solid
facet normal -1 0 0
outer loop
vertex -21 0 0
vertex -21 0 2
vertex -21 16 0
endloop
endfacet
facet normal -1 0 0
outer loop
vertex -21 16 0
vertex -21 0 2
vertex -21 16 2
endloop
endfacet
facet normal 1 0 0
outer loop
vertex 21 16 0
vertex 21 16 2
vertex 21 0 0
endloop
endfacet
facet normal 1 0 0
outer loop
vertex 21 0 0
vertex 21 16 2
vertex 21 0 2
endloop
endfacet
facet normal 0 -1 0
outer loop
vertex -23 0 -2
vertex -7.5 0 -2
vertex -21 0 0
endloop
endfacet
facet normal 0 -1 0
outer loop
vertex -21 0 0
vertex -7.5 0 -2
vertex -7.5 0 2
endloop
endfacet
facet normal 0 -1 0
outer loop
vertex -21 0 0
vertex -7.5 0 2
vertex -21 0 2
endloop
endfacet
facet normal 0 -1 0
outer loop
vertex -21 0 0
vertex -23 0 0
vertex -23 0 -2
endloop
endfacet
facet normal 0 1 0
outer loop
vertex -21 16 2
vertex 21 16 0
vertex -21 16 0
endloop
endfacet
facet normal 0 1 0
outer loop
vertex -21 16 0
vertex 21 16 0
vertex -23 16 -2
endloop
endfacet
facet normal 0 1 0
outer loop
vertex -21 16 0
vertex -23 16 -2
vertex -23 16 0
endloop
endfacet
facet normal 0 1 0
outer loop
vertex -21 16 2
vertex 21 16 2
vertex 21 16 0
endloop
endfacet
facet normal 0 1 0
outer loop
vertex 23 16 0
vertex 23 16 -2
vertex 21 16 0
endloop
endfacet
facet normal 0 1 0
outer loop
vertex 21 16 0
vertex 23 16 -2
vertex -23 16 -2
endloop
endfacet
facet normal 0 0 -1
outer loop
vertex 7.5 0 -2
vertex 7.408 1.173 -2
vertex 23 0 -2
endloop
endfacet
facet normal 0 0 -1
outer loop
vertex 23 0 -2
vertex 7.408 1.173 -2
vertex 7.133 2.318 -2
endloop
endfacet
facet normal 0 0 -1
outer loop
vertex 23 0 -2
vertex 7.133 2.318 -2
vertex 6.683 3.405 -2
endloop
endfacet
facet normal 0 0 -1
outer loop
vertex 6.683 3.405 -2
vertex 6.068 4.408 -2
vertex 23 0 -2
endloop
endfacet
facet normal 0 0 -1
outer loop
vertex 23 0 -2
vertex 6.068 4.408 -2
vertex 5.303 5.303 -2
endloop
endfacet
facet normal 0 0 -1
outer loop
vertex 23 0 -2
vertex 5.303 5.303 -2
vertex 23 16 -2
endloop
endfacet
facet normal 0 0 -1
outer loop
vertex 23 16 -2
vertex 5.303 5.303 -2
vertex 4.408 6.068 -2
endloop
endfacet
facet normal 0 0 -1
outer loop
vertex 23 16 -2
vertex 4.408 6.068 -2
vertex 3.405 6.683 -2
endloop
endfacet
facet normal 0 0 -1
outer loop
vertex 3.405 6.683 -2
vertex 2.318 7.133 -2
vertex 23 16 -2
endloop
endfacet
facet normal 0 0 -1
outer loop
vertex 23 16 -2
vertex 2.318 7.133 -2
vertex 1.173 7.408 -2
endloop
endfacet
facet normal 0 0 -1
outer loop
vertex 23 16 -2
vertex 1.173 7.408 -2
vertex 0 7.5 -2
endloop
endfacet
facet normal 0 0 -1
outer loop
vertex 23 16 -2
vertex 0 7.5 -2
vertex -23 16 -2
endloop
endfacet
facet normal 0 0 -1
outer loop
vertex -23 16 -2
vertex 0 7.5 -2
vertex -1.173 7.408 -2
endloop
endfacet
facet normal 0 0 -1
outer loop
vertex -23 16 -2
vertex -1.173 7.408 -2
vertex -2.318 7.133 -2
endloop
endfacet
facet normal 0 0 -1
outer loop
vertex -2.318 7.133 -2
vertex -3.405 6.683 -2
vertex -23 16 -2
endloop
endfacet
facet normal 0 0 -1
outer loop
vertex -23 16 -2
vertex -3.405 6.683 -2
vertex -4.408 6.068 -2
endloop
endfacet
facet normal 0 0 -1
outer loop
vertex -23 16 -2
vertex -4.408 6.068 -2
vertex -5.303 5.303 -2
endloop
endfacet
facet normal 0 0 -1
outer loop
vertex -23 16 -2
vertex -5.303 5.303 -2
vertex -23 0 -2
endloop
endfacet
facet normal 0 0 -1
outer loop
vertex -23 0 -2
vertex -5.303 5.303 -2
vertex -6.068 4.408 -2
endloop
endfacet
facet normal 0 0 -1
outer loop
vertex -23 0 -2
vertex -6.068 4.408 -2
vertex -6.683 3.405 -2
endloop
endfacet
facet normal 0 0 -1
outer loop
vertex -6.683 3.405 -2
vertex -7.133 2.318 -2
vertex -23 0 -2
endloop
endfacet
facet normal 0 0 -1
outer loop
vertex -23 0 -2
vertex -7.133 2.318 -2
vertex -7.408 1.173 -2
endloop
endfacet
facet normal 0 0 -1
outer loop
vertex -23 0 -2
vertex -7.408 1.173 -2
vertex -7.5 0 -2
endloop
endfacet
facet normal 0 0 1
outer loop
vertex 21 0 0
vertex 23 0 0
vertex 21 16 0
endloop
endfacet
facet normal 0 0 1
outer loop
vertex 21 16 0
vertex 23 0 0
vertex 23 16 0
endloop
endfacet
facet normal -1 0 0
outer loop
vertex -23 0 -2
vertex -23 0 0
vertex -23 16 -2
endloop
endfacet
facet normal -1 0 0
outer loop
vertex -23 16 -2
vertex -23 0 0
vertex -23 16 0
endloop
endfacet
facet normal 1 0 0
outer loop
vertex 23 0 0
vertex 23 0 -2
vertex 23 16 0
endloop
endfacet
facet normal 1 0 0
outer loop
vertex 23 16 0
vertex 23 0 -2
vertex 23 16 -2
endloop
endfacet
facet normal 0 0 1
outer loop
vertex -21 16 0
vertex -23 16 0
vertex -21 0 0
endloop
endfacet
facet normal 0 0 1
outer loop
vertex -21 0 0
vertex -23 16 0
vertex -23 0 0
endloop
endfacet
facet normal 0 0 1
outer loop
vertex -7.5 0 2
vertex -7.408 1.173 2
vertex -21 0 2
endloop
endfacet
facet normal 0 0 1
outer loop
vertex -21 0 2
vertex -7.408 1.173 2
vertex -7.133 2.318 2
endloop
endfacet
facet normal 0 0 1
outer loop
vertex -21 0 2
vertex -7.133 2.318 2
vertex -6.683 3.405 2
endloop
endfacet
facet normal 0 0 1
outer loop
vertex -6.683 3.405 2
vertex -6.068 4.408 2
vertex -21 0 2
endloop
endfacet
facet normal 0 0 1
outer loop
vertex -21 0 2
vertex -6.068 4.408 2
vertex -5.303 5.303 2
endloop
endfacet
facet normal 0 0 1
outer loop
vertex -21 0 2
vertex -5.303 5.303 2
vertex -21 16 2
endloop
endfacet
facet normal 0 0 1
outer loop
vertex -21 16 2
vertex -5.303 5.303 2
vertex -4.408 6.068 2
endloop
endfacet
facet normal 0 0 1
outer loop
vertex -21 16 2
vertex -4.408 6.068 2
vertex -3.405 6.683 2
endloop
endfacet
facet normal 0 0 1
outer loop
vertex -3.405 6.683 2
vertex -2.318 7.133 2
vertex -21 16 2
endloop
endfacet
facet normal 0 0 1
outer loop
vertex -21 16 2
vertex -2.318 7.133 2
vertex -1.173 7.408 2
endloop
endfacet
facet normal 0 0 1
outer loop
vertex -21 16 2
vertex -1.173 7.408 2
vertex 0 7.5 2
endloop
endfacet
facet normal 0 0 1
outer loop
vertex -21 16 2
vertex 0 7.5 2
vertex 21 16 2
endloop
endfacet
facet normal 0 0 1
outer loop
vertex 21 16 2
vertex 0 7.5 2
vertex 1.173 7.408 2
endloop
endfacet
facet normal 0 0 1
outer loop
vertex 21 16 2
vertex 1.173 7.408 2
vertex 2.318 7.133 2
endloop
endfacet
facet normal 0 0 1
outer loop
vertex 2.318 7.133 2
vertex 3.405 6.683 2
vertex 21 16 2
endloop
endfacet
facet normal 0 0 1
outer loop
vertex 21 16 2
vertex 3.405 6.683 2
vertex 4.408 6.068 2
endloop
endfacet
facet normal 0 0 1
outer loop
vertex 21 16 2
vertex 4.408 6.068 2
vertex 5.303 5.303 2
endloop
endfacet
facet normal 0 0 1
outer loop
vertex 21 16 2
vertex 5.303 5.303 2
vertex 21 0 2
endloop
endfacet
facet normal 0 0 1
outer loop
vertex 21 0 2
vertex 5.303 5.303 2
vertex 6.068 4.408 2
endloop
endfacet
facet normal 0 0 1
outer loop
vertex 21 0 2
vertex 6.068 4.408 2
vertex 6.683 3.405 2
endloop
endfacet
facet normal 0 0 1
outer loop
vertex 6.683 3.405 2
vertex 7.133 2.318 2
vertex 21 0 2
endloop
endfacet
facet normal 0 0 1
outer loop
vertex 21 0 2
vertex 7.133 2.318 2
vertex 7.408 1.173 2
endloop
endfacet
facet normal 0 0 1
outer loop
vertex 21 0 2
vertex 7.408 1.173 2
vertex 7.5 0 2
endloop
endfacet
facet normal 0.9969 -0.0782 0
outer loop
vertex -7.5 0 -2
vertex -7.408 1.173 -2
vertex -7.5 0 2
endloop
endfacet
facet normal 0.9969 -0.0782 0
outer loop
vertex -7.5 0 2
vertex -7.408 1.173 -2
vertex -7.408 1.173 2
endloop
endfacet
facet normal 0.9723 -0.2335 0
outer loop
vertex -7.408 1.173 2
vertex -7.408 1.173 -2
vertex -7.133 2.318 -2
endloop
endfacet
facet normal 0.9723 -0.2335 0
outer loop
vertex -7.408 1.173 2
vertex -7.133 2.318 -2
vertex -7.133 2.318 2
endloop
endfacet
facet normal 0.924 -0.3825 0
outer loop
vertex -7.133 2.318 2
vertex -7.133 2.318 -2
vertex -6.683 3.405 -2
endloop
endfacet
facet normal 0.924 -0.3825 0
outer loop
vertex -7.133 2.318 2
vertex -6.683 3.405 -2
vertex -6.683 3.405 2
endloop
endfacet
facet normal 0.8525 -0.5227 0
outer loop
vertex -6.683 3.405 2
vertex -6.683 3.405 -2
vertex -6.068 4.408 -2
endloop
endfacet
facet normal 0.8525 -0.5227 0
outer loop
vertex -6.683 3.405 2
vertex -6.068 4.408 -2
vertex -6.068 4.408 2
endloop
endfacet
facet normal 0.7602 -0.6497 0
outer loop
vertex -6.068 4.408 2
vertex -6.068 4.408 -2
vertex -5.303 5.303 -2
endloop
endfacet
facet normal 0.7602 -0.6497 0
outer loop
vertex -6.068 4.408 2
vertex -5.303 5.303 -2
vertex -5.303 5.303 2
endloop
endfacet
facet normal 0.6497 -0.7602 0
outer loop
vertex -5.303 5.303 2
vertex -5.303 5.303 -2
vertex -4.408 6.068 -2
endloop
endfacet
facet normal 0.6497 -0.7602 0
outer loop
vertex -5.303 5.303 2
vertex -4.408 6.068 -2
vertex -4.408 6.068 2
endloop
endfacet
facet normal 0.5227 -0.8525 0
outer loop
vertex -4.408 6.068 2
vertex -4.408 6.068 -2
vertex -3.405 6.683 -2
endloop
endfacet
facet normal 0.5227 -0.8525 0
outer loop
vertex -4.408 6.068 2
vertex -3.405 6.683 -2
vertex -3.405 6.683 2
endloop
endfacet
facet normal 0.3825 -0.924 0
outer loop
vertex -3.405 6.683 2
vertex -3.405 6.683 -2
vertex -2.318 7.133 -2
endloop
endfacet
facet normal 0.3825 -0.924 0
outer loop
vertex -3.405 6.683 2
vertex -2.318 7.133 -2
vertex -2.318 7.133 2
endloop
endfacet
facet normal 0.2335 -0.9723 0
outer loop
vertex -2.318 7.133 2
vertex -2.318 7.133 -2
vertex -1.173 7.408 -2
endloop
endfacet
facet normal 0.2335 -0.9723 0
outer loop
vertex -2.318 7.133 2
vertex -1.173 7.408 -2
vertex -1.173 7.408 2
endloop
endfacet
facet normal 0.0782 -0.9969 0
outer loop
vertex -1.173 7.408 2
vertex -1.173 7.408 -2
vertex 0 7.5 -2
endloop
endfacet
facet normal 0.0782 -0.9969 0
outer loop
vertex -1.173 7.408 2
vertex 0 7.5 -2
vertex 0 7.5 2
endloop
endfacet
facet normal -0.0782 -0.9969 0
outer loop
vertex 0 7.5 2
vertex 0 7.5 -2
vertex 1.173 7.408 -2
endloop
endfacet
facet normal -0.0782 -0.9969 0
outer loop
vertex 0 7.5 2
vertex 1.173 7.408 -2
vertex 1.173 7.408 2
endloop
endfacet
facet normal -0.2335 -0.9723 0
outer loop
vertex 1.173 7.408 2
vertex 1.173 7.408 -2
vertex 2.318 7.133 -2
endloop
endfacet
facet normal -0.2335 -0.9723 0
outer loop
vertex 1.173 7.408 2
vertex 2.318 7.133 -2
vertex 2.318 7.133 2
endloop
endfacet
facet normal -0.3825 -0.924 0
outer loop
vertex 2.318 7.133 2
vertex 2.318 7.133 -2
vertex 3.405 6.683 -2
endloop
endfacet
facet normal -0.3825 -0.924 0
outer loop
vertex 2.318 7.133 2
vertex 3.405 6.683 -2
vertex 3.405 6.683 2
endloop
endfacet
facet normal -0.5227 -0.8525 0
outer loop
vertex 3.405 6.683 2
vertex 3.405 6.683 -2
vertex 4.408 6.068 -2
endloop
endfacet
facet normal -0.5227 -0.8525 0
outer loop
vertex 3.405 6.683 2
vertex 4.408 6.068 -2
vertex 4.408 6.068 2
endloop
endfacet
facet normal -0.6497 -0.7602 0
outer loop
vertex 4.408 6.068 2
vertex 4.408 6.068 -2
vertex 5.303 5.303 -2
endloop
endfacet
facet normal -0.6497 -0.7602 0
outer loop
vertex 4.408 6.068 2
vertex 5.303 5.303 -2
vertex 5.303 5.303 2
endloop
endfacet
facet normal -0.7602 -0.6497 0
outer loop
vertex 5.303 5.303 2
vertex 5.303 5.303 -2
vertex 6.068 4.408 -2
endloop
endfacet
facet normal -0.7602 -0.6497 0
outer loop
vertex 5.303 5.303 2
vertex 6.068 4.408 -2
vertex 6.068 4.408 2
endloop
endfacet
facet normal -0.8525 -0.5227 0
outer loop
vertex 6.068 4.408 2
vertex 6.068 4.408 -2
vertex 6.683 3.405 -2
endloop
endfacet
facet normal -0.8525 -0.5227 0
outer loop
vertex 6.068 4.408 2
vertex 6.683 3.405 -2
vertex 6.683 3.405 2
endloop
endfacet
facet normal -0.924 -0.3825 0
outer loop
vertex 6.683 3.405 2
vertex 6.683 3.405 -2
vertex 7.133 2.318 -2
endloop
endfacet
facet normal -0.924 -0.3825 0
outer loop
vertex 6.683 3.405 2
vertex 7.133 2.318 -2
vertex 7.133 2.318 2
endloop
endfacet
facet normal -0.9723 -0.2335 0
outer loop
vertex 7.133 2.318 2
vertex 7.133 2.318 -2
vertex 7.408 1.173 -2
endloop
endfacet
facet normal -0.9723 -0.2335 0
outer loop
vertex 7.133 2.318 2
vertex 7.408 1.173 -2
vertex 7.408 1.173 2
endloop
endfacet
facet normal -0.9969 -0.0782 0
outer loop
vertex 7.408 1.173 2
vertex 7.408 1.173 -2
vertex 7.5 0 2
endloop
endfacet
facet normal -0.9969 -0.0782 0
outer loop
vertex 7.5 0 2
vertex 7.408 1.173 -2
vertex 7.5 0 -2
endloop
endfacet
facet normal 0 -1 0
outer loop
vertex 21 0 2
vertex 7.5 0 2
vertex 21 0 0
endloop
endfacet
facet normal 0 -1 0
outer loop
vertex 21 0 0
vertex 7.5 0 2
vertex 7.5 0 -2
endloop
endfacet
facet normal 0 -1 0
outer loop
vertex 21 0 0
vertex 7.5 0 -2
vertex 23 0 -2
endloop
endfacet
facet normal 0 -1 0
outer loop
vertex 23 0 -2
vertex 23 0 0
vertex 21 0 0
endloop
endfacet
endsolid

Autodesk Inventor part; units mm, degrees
ref_plane "YZ Plane" through (0, 0, 0) normal (1, 0, 0) x (0, 1, 0)
ref_plane "XZ Plane" through (0, 0, 0) normal (0, 1, 0) x (-1, 0, 0)
ref_plane "XY Plane" through (0, 0, 0) normal (0, 0, 1) x (1, 0, 0)
sketch "Sketch1" plane through (0, 0, 0) normal (0, 1, 0) x (-1, 0, 0)
  line L0 (21, 2) -> (-21, 2)
  line L1 (-21, 2) -> (-21, -2)
  line L2 (-21, -2) -> (21, -2)
  line L3 (21, -2) -> (21, 2)
  line L4 (23, 0) -> (-23, 0)
  line L5 (-23, 0) -> (-23, -2)
  line L6 (-23, -2) -> (23, -2)
  line L7 (23, -2) -> (23, 0)
  point P0 (0, 0)
  dimension "d0" = 42
  dimension "d1" = 4
  dimension "d2" = 21
  dimension "d3" = 2
  dimension "d4" = 2
  dimension "d5" = 46
  dimension "d6" = 2
  dimension "d7" = 2
extrude "Extrusion1" add sketch "Sketch1" along normal blind 16
sketch "Sketch2" plane through (-21, 0, 2) normal (0, 0, 1) x (1, 0, 0)
  circle A0 centre (21, 0) radius 7.5
  dimension "d10" = 15
extrude "Extrusion2" cut sketch "Sketch2" against normal up to next
equation "\"d2\" = 0.5 * d0"
equation "\"d3\" = 0.5 * d1"
properties part number "Lid"
